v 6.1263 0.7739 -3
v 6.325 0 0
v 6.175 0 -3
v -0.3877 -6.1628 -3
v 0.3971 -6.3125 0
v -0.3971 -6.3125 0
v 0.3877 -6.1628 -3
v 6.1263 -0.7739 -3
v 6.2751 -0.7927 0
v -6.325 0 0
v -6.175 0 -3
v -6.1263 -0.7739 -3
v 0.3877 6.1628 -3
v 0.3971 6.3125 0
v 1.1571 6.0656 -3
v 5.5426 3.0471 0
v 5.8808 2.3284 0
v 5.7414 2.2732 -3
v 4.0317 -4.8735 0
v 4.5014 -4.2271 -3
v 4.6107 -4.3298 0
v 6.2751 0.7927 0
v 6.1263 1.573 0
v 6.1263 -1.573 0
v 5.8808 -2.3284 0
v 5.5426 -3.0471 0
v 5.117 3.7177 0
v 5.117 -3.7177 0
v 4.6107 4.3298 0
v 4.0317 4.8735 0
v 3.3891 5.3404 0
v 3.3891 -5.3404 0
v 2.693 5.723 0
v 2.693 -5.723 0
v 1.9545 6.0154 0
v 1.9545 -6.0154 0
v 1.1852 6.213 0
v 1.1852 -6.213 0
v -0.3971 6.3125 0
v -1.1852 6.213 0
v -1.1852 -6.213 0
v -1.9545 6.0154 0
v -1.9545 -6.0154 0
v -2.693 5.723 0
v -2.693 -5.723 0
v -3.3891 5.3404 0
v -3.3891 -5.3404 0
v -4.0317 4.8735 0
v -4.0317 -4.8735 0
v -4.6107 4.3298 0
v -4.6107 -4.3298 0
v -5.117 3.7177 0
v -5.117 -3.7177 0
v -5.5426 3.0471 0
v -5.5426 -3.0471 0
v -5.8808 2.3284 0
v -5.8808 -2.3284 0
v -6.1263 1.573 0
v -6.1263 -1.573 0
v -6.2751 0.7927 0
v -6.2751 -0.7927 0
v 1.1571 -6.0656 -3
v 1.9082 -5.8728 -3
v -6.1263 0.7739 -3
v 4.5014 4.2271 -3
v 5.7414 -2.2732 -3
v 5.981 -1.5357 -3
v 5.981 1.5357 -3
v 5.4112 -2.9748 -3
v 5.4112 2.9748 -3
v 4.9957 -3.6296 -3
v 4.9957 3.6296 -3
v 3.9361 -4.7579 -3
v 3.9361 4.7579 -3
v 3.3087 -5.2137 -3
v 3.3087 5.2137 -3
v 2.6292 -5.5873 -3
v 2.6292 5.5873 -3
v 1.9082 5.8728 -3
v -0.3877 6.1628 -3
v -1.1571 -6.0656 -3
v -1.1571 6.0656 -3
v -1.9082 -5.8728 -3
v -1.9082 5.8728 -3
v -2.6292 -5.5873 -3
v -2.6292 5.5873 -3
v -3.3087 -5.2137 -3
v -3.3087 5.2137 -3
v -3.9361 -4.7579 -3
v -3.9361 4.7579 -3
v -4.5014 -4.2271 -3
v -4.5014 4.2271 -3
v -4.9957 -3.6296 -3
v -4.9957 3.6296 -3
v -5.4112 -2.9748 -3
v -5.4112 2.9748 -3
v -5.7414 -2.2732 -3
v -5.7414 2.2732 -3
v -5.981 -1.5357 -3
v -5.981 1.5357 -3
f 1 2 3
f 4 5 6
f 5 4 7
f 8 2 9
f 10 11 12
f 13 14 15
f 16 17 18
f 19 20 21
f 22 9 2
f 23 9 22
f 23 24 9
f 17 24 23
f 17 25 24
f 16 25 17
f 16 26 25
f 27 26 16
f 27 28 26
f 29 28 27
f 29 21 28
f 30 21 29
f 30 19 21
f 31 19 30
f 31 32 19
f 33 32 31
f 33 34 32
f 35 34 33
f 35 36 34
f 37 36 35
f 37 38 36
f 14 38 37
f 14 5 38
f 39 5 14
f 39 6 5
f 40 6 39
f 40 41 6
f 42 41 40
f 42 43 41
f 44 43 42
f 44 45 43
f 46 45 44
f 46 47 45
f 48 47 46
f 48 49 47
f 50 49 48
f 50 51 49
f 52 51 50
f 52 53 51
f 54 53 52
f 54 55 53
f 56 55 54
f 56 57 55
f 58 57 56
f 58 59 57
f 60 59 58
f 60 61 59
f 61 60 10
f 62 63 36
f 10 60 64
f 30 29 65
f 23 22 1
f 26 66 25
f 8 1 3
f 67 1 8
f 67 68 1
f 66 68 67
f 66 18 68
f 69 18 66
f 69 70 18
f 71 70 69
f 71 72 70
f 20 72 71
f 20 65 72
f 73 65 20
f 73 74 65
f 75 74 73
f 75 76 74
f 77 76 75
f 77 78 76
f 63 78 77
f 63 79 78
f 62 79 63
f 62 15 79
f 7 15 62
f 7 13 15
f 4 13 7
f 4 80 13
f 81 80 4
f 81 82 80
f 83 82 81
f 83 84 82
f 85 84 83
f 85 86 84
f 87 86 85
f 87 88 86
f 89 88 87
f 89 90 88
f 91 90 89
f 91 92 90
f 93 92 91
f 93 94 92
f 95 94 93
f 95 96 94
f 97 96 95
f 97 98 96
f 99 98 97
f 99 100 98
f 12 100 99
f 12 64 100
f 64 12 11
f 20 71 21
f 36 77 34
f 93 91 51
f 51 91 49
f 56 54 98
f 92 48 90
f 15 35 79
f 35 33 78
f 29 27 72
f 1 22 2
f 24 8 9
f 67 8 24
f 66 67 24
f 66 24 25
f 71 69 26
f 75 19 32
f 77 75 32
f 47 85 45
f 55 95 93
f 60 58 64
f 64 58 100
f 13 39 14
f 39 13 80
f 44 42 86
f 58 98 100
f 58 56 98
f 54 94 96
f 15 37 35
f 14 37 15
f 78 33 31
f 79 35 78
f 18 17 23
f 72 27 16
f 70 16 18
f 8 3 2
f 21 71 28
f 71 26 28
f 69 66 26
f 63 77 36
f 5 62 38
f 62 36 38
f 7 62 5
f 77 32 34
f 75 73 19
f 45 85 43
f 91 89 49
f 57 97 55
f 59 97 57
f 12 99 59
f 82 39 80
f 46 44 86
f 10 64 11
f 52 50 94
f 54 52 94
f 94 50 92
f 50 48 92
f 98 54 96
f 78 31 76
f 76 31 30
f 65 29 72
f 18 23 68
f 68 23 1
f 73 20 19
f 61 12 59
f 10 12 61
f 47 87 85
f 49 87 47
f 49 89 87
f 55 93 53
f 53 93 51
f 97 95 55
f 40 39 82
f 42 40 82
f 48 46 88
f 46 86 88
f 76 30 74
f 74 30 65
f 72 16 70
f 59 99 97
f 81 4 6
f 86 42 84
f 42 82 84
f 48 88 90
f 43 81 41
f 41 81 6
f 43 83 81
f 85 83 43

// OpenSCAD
$fn = 50;


difference() {
	union() {
		translate(v = [0, 0, -3.0000000000]) {
			cylinder(h = 3, r1 = 6.1750000000, r2 = 6.3250000000);
		}
	}
	union();
}
